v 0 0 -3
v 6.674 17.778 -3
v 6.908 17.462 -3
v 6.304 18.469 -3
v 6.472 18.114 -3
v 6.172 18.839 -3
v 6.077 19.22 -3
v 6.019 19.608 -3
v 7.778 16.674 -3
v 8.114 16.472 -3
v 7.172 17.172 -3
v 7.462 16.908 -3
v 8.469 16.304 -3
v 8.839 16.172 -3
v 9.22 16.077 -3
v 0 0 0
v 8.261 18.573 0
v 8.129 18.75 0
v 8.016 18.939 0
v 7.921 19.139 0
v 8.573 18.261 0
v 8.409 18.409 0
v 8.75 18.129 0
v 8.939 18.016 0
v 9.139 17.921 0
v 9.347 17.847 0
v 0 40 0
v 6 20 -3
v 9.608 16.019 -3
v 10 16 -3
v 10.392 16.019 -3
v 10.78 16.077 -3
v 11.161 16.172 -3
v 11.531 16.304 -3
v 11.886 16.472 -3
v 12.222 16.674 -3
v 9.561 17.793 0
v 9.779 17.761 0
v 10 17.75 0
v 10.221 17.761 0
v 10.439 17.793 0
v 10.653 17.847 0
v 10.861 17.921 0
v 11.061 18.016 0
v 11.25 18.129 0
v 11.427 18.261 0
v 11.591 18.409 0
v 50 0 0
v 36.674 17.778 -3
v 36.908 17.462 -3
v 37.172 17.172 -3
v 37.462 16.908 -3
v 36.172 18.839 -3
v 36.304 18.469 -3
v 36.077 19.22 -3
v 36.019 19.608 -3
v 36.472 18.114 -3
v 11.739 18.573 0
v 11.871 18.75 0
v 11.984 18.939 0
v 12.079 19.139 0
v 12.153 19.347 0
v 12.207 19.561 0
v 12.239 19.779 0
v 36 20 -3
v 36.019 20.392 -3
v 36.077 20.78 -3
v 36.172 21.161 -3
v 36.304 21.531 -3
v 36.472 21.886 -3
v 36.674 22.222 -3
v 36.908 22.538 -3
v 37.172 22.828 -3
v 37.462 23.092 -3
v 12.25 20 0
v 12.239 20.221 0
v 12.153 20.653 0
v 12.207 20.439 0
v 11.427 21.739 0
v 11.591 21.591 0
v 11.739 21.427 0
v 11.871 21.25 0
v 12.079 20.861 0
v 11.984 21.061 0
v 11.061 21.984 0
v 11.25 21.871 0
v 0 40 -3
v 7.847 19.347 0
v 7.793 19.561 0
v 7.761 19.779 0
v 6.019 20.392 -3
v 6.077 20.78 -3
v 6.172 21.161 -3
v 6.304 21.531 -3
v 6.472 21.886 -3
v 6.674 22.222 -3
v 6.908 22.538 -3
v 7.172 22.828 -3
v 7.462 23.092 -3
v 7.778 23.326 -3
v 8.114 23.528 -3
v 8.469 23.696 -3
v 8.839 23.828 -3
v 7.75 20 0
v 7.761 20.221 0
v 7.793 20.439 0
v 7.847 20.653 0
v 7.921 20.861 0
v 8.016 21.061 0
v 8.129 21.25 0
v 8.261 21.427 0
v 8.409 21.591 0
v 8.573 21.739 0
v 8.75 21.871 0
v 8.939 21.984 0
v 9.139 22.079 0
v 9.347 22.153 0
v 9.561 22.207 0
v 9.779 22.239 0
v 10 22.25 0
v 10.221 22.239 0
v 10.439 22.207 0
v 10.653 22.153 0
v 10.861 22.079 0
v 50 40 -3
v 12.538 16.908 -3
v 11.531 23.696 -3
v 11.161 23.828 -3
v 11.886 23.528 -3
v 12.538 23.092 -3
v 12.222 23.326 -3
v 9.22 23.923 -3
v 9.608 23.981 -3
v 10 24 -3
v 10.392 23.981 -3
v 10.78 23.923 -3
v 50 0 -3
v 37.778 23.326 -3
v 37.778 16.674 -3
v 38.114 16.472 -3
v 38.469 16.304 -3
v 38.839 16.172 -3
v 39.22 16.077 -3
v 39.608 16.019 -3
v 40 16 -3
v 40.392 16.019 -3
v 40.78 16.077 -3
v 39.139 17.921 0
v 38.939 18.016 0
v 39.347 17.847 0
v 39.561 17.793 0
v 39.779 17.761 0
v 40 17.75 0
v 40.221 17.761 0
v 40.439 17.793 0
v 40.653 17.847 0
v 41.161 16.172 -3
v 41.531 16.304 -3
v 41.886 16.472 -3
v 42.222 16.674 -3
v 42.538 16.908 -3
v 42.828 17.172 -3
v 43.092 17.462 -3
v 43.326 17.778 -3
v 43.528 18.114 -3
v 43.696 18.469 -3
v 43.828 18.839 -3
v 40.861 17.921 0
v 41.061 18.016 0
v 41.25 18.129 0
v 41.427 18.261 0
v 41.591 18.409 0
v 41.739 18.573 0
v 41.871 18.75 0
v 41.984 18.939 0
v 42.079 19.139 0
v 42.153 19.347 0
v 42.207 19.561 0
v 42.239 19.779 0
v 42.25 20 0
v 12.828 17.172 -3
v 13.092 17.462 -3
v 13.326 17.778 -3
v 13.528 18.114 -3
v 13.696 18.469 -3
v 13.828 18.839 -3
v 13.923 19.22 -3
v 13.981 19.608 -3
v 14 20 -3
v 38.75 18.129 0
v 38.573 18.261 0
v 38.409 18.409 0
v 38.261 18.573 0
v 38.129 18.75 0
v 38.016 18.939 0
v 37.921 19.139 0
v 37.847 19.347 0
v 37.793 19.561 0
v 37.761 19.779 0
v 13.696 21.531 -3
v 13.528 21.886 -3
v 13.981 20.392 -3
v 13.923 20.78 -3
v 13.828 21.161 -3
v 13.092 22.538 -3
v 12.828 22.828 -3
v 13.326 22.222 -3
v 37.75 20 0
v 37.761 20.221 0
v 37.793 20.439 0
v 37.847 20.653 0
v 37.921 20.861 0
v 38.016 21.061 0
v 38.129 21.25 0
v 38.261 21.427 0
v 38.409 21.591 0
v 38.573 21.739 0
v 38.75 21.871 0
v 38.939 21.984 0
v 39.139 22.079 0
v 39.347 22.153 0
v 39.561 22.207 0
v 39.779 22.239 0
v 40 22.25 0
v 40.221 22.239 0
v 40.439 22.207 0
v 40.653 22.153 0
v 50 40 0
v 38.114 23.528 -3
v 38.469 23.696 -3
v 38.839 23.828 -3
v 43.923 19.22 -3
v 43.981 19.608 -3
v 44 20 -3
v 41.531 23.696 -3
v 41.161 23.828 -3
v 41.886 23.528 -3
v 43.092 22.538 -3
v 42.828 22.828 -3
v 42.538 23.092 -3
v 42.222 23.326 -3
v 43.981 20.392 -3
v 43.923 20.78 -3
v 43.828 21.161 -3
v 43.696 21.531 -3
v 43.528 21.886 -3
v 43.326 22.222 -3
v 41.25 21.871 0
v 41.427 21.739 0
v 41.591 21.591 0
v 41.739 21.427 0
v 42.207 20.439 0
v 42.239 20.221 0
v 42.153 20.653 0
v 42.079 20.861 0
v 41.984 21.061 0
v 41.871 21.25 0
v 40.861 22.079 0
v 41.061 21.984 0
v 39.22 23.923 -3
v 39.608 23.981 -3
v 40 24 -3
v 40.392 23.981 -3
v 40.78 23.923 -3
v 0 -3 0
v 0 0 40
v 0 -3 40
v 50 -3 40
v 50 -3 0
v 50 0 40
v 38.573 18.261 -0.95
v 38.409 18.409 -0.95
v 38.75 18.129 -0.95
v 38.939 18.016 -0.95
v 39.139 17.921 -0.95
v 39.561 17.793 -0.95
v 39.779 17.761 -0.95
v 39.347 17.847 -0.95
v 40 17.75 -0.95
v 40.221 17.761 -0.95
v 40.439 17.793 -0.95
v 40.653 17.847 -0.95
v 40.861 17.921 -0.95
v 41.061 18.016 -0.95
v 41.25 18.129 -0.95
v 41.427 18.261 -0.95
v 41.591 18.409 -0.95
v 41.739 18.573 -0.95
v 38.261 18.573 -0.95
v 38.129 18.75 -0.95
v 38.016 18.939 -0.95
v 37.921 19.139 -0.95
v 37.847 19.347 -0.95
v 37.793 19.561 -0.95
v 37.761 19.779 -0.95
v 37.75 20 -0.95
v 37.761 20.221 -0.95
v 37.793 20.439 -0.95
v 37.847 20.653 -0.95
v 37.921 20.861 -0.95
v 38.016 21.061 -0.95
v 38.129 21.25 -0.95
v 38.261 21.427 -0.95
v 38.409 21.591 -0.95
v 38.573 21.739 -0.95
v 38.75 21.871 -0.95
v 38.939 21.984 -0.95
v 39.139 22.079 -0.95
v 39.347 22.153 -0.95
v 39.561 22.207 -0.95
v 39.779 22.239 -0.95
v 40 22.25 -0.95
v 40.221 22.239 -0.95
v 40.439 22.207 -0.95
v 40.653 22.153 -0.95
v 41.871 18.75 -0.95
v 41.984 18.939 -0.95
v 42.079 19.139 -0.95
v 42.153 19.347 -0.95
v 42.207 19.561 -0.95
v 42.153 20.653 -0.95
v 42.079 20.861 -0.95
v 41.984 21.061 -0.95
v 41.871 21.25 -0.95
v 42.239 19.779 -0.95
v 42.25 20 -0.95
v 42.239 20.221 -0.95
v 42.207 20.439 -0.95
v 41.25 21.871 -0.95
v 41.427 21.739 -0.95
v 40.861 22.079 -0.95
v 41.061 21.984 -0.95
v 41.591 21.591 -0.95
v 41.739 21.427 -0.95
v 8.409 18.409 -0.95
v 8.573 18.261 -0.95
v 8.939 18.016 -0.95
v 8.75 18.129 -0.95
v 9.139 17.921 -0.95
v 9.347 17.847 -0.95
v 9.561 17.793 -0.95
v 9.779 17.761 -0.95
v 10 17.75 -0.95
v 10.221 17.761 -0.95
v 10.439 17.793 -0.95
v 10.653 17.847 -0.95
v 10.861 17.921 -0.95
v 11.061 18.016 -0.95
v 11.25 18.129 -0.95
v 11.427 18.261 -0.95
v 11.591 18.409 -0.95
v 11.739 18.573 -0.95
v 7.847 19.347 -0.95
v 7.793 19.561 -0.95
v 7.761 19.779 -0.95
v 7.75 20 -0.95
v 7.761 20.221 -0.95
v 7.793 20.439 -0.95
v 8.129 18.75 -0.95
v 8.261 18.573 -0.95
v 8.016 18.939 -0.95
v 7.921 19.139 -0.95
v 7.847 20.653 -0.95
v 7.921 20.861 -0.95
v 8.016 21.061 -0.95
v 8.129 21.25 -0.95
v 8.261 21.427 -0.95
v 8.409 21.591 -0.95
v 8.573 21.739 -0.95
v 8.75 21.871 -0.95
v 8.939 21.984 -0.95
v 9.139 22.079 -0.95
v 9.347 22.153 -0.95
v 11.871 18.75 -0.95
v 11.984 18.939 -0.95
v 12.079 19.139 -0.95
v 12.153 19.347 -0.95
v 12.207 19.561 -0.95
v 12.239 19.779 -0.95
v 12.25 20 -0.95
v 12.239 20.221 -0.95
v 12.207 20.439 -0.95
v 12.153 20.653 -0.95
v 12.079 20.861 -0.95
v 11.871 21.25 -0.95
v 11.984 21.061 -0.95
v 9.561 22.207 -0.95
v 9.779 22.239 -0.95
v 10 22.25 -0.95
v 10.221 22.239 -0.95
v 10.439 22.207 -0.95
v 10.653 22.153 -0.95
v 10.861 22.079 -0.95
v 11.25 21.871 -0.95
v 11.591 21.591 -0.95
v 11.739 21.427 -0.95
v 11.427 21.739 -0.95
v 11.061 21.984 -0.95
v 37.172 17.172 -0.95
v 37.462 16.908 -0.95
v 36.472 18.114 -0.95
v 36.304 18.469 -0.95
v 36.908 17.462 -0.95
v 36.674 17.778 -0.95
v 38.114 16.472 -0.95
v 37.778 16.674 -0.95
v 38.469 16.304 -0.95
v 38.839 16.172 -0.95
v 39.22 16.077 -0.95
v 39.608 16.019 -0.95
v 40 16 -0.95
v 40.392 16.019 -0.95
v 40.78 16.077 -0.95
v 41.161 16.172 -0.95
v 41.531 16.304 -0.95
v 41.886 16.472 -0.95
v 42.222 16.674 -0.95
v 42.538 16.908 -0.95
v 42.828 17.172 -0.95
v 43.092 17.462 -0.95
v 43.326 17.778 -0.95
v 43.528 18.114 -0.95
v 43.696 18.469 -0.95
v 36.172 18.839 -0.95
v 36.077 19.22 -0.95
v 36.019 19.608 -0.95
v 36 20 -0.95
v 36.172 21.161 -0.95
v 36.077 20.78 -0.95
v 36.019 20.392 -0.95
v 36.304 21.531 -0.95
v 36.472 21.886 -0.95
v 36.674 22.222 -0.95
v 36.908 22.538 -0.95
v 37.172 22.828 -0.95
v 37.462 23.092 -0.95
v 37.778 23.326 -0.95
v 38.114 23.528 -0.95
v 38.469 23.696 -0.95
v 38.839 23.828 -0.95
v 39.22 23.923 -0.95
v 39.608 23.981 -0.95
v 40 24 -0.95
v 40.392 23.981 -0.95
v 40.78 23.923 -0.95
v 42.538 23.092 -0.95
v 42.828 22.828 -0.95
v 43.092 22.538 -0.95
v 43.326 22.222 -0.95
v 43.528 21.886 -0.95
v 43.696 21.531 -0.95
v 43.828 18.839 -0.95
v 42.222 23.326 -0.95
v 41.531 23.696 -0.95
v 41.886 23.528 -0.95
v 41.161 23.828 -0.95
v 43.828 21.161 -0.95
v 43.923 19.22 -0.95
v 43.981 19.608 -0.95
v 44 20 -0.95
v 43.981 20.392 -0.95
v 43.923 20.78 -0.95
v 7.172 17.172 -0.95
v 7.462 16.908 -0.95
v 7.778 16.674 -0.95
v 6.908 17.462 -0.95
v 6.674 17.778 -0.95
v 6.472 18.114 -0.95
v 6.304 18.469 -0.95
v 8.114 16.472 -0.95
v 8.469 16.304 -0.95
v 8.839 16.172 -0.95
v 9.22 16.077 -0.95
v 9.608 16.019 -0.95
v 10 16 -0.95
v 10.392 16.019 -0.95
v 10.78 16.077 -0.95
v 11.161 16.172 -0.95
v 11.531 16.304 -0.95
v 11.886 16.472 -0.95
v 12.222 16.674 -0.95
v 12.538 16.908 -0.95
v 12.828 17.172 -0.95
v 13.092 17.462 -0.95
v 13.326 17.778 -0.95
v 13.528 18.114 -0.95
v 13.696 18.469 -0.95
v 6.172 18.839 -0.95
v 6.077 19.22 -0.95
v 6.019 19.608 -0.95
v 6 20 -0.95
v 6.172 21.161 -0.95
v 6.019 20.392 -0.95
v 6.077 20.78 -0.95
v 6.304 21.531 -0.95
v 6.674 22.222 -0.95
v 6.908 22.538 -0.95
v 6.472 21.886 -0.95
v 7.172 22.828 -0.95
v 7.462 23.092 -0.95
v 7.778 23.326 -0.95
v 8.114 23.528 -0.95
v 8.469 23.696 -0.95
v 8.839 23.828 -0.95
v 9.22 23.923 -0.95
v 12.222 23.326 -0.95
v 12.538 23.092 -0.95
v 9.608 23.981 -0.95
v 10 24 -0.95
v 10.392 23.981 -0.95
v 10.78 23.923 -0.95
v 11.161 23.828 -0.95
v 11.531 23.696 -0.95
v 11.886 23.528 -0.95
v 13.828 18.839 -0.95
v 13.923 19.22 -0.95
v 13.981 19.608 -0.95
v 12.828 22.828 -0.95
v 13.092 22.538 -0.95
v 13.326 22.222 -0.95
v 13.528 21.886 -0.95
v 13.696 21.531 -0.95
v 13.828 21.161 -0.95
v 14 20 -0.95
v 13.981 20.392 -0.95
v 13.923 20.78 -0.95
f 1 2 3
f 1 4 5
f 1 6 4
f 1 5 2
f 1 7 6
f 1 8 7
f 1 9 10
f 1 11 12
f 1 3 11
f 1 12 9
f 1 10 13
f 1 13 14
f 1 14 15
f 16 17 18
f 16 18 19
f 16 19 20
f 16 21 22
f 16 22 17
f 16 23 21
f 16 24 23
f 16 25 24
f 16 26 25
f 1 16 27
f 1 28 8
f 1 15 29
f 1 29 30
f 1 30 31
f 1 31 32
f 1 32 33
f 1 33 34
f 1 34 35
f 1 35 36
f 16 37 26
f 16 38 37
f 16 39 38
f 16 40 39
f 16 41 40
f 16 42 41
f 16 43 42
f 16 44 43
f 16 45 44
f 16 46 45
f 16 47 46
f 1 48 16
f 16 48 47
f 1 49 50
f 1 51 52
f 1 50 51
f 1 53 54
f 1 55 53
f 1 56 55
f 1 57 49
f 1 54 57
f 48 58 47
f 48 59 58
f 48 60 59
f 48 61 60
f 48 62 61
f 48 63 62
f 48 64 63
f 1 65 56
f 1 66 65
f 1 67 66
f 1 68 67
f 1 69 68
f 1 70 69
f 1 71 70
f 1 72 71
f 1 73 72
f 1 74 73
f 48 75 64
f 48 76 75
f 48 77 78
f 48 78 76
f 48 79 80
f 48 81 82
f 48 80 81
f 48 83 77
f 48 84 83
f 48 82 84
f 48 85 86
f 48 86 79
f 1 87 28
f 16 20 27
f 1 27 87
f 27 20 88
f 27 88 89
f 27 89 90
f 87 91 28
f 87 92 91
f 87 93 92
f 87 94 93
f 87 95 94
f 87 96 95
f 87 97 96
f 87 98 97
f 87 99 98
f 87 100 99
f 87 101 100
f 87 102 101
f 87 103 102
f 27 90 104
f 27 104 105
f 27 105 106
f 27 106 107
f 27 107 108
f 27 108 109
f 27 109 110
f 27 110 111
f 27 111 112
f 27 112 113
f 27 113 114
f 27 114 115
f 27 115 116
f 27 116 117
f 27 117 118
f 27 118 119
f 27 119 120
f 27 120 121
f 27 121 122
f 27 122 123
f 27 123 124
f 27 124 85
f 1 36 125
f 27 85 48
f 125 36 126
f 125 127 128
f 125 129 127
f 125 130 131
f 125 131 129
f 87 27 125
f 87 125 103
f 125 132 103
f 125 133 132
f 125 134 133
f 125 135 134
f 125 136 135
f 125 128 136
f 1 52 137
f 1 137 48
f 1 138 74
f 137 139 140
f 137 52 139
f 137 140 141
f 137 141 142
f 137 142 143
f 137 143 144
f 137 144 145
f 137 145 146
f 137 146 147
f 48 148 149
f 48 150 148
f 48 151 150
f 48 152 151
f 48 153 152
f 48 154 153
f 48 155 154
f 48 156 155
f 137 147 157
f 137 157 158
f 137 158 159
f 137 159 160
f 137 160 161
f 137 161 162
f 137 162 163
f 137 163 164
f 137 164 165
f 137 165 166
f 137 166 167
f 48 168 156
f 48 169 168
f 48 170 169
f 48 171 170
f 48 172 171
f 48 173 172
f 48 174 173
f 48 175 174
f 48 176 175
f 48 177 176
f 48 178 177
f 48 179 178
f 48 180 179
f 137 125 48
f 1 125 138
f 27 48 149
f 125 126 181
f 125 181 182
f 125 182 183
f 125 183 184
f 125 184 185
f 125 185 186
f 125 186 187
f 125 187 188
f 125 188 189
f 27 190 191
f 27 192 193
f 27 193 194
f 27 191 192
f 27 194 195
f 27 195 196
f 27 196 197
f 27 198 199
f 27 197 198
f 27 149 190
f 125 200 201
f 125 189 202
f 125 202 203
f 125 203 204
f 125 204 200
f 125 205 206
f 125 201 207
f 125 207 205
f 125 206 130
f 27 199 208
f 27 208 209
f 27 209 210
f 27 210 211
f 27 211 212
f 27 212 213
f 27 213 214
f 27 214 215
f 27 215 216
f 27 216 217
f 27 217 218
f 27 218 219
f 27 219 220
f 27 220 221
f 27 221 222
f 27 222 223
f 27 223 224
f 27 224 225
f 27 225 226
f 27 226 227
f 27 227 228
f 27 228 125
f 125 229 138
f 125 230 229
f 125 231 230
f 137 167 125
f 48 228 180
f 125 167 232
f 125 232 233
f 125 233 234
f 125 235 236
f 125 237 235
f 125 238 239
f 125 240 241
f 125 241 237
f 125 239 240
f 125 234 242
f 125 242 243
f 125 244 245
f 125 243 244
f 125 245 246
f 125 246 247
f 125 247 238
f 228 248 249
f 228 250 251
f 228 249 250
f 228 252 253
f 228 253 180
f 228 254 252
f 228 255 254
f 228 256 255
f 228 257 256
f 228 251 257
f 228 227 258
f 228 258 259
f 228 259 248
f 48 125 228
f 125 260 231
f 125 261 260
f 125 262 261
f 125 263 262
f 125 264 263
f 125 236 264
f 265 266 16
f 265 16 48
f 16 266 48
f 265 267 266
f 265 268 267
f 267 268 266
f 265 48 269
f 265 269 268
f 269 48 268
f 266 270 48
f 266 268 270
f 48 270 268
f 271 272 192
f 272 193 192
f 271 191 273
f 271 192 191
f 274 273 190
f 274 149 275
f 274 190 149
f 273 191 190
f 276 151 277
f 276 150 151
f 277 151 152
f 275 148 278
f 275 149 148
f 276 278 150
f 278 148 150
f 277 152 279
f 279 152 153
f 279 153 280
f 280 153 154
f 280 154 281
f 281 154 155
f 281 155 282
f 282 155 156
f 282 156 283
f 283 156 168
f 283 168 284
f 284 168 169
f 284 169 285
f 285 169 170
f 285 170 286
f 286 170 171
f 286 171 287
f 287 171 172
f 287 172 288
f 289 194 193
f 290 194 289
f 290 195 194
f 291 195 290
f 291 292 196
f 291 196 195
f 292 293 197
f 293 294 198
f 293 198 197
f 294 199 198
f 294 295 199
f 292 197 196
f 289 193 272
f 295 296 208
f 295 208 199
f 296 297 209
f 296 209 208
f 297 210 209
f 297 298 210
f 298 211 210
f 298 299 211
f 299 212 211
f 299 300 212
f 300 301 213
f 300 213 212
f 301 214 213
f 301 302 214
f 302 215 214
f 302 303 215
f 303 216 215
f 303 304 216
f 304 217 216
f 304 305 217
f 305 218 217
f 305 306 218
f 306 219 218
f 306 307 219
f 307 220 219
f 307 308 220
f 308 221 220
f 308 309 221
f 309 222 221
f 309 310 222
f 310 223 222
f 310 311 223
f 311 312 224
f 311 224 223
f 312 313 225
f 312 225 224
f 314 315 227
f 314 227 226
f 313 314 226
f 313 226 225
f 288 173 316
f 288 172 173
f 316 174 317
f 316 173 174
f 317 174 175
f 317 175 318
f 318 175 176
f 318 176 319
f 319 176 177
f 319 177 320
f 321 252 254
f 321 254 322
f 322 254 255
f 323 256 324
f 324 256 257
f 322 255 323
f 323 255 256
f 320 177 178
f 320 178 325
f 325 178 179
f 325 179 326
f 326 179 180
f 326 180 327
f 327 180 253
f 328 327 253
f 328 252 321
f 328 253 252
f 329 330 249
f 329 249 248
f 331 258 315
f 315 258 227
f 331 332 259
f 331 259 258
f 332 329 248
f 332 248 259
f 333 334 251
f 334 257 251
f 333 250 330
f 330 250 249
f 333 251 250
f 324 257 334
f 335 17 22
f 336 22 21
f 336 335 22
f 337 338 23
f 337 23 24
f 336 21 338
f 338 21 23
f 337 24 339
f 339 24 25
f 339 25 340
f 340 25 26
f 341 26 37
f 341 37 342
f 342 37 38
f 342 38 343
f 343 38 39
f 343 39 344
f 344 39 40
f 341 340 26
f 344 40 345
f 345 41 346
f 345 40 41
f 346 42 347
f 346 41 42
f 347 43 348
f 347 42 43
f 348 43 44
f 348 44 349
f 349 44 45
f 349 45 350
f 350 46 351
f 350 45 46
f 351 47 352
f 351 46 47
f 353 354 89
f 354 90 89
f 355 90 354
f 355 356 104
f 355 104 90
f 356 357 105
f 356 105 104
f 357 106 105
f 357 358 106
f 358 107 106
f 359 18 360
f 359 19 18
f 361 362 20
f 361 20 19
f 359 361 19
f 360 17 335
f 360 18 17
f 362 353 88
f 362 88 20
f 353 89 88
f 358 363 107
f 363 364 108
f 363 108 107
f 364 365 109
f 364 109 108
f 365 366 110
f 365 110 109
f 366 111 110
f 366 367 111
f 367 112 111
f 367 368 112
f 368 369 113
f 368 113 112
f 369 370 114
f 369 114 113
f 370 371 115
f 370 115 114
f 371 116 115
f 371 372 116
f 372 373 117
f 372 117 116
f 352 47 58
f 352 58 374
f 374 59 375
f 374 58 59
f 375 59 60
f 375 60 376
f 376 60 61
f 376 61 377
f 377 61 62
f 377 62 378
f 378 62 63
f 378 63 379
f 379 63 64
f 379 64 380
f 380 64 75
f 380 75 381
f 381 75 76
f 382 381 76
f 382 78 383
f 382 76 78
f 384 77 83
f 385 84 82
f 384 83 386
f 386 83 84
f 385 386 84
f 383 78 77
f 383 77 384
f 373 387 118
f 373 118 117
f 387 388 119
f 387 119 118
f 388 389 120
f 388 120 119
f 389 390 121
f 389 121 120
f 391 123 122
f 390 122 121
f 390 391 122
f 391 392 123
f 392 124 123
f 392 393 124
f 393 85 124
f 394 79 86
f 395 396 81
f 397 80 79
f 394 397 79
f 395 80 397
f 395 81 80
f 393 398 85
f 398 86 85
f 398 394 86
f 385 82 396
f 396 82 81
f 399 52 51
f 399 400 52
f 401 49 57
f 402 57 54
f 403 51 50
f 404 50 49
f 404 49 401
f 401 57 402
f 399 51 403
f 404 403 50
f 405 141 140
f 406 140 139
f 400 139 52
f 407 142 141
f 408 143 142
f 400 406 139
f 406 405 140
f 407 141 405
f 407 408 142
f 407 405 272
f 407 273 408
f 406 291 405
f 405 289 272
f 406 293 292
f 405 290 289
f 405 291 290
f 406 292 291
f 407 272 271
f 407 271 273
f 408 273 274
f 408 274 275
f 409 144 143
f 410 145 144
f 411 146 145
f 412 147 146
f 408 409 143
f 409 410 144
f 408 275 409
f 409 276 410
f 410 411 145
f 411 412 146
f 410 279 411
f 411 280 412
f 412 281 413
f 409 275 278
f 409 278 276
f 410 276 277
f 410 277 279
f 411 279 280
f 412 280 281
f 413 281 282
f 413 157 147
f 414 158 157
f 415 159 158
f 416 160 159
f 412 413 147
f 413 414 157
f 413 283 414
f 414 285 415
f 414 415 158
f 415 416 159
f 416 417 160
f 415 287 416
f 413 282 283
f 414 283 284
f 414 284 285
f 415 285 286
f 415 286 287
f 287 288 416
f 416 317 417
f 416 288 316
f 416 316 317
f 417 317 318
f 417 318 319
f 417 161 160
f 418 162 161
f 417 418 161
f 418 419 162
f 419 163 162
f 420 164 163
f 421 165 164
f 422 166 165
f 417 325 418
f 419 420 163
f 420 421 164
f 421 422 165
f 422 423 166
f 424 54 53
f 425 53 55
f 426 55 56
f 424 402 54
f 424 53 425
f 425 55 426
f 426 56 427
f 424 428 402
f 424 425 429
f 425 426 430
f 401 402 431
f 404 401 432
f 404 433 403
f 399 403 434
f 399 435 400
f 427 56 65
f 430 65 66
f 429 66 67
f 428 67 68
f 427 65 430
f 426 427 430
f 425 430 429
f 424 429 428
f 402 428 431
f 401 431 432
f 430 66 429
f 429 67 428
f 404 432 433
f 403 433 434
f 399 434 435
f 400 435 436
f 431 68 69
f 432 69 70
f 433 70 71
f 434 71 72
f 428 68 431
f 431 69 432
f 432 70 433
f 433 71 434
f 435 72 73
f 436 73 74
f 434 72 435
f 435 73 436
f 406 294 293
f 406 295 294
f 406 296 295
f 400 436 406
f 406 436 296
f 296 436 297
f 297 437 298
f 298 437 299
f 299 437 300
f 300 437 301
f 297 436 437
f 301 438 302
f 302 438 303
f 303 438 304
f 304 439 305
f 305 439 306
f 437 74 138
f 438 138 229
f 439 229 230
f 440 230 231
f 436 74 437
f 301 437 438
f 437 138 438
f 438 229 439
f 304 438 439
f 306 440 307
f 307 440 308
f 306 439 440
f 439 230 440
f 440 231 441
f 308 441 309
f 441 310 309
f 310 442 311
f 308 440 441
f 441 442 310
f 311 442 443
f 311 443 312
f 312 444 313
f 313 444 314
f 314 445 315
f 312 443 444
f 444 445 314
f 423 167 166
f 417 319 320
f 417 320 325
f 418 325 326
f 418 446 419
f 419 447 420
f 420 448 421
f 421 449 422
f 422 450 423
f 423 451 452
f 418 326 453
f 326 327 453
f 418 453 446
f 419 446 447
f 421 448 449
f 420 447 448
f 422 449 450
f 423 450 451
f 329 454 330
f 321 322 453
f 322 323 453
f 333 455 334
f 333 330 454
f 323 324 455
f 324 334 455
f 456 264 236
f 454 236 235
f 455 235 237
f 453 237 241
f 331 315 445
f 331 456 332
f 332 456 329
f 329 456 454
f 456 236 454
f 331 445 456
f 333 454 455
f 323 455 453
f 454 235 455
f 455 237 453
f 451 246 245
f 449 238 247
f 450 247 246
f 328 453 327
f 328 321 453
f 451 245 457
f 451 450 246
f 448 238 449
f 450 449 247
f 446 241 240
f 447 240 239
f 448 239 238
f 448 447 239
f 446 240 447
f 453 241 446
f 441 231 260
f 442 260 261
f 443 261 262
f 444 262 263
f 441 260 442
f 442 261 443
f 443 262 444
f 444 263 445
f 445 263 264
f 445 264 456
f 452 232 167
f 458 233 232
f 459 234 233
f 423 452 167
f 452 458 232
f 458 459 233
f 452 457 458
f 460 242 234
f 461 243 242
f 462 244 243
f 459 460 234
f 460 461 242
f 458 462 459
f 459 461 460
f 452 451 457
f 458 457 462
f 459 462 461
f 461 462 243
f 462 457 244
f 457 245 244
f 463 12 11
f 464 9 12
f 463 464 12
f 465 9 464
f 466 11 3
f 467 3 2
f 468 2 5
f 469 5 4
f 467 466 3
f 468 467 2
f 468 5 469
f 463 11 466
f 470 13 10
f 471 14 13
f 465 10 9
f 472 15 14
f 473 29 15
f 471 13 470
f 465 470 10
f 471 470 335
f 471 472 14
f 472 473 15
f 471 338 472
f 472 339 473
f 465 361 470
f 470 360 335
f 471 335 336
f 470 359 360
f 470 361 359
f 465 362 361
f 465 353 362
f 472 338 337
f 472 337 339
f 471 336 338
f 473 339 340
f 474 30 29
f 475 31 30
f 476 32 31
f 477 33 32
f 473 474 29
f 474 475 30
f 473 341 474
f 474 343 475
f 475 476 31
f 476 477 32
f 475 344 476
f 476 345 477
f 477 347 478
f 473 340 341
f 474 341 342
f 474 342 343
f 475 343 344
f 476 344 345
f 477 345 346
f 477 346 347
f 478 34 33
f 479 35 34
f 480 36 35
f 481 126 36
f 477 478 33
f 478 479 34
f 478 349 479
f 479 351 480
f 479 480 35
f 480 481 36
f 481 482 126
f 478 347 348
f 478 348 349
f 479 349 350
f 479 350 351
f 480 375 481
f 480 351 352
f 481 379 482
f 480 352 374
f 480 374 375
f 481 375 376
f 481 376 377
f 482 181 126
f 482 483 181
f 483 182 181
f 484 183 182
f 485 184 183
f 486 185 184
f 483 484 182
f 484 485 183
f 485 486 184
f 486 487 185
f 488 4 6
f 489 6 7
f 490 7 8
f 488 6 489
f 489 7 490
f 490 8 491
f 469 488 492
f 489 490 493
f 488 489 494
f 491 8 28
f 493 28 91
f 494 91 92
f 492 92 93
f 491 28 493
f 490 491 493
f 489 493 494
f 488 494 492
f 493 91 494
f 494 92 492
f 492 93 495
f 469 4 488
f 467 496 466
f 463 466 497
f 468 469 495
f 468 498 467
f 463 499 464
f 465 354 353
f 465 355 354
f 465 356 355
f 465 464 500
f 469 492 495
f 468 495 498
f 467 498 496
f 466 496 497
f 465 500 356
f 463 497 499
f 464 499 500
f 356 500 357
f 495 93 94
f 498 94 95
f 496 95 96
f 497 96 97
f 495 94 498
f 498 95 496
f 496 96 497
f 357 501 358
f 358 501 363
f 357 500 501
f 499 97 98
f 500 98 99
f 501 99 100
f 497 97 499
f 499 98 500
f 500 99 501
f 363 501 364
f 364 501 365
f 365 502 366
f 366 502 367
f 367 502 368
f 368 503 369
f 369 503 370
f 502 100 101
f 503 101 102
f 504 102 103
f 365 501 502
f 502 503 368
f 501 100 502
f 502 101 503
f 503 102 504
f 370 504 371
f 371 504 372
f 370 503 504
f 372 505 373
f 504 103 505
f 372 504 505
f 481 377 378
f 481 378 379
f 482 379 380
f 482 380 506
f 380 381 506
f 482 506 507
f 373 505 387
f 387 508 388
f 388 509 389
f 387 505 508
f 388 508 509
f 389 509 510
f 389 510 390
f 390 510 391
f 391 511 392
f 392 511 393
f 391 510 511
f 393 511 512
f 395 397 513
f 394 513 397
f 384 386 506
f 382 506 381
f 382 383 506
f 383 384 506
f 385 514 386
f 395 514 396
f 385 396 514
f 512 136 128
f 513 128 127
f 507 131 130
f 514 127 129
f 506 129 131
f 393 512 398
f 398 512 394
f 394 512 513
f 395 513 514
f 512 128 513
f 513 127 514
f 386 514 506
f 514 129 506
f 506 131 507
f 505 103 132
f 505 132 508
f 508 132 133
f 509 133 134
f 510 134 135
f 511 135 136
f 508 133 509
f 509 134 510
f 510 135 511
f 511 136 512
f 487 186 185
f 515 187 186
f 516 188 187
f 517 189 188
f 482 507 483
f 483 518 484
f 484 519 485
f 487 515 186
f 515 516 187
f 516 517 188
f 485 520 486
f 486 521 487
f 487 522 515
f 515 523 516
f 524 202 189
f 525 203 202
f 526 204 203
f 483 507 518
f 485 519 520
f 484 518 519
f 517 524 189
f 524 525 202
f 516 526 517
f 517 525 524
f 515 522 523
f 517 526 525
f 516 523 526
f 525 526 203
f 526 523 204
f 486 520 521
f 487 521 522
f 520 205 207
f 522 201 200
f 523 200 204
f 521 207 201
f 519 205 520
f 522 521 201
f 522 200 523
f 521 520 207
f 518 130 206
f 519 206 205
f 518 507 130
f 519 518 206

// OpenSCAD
$fn = 64;

// Dimensions
width = 50;
depth = 40;
height = 40;
thickness = 3;

// Hole specs
through_d = 4.5;
csink_d = 8;
csink_depth = 2;

// Hole positions
x1 = 10;
x2 = width - 10;
y_center = depth / 2;
z_center = height / 2;

module countersunk_hole_z_up(h=thickness) {
    union() {
        cylinder(h=h + 0.2, d=through_d);
        cylinder(h=csink_depth + 0.1, d=csink_d);
    }
}

module countersunk_hole_y_pos(h=thickness) {
    rotate([90, 0, 0])
        union() {
            cylinder(h=h + 0.2, d=through_d);
            cylinder(h=csink_depth + 0.1, d=csink_d);
        }
}

difference() {
    union() {
        // Horizontal flange: extends in +Y, top surface at z=0, thickness downward
        translate([0, 0, -thickness])
            cube([width, depth, thickness]);

        // Vertical flange: extends in +Z, thickness in -Y direction
        translate([0, -thickness, 0])
            cube([width, thickness, height]);
    }

    // Horizontal flange holes (countersink on outer/bottom side)
    translate([x1, y_center, -thickness - 0.05])
        countersunk_hole_z_up(thickness + 0.1);
    translate([x2, y_center, -thickness - 0.05])
        countersunk_hole_z_up(thickness + 0.1);

    // Vertical flange holes (countersink on outer/back side, -Y)
    translate([x1, -thickness - 0.05, z_center])
        countersunk_hole_y_pos(thickness + 0.1);
    translate([x2, -thickness - 0.05, z_center])
        countersunk_hole_y_pos(thickness + 0.1);
}
